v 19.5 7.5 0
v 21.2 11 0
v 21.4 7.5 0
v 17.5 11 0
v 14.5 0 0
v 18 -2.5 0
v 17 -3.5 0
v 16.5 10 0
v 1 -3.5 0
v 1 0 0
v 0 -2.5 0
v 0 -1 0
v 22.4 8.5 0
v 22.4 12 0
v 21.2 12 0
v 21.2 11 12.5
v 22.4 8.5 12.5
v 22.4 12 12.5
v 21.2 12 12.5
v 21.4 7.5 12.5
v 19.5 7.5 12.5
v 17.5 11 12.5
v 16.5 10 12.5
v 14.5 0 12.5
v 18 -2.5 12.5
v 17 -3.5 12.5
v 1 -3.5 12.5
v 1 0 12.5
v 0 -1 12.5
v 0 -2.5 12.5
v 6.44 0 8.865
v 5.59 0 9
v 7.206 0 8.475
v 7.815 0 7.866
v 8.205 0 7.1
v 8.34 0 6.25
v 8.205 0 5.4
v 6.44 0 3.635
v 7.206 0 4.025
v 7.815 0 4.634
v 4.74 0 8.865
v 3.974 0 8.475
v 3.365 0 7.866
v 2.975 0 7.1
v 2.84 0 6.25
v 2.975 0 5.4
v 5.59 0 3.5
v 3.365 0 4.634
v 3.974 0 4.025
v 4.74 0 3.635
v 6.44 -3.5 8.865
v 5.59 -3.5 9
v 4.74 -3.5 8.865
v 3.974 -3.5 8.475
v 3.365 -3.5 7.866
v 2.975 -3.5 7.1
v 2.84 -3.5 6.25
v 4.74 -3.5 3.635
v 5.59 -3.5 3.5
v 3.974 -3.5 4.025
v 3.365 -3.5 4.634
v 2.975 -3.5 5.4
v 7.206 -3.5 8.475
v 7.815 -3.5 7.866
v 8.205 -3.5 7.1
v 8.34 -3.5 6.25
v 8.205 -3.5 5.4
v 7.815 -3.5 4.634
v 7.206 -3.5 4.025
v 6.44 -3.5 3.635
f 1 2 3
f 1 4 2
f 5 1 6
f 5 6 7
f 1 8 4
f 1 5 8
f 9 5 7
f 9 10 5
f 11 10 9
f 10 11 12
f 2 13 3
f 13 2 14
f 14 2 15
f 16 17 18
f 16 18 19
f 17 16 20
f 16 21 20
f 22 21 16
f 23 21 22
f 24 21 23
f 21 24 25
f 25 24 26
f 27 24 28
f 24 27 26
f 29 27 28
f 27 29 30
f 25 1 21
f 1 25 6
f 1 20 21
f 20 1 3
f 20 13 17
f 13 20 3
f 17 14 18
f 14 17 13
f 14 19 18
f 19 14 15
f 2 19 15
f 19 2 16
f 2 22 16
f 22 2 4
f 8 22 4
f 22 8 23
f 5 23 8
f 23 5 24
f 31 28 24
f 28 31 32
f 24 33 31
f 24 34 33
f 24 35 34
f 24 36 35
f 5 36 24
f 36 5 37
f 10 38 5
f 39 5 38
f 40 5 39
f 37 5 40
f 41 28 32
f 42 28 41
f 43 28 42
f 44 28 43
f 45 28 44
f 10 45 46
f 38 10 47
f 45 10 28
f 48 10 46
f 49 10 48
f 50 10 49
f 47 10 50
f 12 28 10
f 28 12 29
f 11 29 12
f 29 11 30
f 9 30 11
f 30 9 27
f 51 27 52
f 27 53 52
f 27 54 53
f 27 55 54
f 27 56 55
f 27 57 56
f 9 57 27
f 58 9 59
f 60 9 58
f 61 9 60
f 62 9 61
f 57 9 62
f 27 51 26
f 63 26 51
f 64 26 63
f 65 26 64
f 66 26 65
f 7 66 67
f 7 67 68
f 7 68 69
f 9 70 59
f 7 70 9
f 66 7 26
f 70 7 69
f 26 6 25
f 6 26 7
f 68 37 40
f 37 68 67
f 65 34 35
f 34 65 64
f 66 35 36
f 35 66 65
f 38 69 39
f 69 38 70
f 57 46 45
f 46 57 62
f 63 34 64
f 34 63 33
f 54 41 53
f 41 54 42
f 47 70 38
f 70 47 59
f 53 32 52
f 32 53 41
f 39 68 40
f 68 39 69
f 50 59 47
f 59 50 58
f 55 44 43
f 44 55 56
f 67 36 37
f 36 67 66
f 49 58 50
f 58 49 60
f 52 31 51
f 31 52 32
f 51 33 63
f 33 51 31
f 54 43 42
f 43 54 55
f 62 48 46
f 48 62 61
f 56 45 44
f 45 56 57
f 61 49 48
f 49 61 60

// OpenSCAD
$fn = 48;


difference() {
	linear_extrude(height = 12.5000000000) {
		polygon(points = [[1, 0], [14.5000000000, 0], [16.5000000000, 10], [17.5000000000, 11], [21.2000000000, 11], [21.2000000000, 12], [22.4000000000, 12], [22.4000000000, 8.5000000000], [21.4000000000, 7.5000000000], [19.5000000000, 7.5000000000], [18.0000000000, -2.5000000000], [17.0000000000, -3.5000000000], [1, -3.5000000000], [0, -2.5000000000], [0, -1]]);
	}
	translate(v = [5.5900000000, 0, 6.2500000000]) {
		rotate(a = [90, 0, 0]) {
			cylinder($fn = 20, d = 5.5000000000, h = 10.5000000000);
		}
	}
}
